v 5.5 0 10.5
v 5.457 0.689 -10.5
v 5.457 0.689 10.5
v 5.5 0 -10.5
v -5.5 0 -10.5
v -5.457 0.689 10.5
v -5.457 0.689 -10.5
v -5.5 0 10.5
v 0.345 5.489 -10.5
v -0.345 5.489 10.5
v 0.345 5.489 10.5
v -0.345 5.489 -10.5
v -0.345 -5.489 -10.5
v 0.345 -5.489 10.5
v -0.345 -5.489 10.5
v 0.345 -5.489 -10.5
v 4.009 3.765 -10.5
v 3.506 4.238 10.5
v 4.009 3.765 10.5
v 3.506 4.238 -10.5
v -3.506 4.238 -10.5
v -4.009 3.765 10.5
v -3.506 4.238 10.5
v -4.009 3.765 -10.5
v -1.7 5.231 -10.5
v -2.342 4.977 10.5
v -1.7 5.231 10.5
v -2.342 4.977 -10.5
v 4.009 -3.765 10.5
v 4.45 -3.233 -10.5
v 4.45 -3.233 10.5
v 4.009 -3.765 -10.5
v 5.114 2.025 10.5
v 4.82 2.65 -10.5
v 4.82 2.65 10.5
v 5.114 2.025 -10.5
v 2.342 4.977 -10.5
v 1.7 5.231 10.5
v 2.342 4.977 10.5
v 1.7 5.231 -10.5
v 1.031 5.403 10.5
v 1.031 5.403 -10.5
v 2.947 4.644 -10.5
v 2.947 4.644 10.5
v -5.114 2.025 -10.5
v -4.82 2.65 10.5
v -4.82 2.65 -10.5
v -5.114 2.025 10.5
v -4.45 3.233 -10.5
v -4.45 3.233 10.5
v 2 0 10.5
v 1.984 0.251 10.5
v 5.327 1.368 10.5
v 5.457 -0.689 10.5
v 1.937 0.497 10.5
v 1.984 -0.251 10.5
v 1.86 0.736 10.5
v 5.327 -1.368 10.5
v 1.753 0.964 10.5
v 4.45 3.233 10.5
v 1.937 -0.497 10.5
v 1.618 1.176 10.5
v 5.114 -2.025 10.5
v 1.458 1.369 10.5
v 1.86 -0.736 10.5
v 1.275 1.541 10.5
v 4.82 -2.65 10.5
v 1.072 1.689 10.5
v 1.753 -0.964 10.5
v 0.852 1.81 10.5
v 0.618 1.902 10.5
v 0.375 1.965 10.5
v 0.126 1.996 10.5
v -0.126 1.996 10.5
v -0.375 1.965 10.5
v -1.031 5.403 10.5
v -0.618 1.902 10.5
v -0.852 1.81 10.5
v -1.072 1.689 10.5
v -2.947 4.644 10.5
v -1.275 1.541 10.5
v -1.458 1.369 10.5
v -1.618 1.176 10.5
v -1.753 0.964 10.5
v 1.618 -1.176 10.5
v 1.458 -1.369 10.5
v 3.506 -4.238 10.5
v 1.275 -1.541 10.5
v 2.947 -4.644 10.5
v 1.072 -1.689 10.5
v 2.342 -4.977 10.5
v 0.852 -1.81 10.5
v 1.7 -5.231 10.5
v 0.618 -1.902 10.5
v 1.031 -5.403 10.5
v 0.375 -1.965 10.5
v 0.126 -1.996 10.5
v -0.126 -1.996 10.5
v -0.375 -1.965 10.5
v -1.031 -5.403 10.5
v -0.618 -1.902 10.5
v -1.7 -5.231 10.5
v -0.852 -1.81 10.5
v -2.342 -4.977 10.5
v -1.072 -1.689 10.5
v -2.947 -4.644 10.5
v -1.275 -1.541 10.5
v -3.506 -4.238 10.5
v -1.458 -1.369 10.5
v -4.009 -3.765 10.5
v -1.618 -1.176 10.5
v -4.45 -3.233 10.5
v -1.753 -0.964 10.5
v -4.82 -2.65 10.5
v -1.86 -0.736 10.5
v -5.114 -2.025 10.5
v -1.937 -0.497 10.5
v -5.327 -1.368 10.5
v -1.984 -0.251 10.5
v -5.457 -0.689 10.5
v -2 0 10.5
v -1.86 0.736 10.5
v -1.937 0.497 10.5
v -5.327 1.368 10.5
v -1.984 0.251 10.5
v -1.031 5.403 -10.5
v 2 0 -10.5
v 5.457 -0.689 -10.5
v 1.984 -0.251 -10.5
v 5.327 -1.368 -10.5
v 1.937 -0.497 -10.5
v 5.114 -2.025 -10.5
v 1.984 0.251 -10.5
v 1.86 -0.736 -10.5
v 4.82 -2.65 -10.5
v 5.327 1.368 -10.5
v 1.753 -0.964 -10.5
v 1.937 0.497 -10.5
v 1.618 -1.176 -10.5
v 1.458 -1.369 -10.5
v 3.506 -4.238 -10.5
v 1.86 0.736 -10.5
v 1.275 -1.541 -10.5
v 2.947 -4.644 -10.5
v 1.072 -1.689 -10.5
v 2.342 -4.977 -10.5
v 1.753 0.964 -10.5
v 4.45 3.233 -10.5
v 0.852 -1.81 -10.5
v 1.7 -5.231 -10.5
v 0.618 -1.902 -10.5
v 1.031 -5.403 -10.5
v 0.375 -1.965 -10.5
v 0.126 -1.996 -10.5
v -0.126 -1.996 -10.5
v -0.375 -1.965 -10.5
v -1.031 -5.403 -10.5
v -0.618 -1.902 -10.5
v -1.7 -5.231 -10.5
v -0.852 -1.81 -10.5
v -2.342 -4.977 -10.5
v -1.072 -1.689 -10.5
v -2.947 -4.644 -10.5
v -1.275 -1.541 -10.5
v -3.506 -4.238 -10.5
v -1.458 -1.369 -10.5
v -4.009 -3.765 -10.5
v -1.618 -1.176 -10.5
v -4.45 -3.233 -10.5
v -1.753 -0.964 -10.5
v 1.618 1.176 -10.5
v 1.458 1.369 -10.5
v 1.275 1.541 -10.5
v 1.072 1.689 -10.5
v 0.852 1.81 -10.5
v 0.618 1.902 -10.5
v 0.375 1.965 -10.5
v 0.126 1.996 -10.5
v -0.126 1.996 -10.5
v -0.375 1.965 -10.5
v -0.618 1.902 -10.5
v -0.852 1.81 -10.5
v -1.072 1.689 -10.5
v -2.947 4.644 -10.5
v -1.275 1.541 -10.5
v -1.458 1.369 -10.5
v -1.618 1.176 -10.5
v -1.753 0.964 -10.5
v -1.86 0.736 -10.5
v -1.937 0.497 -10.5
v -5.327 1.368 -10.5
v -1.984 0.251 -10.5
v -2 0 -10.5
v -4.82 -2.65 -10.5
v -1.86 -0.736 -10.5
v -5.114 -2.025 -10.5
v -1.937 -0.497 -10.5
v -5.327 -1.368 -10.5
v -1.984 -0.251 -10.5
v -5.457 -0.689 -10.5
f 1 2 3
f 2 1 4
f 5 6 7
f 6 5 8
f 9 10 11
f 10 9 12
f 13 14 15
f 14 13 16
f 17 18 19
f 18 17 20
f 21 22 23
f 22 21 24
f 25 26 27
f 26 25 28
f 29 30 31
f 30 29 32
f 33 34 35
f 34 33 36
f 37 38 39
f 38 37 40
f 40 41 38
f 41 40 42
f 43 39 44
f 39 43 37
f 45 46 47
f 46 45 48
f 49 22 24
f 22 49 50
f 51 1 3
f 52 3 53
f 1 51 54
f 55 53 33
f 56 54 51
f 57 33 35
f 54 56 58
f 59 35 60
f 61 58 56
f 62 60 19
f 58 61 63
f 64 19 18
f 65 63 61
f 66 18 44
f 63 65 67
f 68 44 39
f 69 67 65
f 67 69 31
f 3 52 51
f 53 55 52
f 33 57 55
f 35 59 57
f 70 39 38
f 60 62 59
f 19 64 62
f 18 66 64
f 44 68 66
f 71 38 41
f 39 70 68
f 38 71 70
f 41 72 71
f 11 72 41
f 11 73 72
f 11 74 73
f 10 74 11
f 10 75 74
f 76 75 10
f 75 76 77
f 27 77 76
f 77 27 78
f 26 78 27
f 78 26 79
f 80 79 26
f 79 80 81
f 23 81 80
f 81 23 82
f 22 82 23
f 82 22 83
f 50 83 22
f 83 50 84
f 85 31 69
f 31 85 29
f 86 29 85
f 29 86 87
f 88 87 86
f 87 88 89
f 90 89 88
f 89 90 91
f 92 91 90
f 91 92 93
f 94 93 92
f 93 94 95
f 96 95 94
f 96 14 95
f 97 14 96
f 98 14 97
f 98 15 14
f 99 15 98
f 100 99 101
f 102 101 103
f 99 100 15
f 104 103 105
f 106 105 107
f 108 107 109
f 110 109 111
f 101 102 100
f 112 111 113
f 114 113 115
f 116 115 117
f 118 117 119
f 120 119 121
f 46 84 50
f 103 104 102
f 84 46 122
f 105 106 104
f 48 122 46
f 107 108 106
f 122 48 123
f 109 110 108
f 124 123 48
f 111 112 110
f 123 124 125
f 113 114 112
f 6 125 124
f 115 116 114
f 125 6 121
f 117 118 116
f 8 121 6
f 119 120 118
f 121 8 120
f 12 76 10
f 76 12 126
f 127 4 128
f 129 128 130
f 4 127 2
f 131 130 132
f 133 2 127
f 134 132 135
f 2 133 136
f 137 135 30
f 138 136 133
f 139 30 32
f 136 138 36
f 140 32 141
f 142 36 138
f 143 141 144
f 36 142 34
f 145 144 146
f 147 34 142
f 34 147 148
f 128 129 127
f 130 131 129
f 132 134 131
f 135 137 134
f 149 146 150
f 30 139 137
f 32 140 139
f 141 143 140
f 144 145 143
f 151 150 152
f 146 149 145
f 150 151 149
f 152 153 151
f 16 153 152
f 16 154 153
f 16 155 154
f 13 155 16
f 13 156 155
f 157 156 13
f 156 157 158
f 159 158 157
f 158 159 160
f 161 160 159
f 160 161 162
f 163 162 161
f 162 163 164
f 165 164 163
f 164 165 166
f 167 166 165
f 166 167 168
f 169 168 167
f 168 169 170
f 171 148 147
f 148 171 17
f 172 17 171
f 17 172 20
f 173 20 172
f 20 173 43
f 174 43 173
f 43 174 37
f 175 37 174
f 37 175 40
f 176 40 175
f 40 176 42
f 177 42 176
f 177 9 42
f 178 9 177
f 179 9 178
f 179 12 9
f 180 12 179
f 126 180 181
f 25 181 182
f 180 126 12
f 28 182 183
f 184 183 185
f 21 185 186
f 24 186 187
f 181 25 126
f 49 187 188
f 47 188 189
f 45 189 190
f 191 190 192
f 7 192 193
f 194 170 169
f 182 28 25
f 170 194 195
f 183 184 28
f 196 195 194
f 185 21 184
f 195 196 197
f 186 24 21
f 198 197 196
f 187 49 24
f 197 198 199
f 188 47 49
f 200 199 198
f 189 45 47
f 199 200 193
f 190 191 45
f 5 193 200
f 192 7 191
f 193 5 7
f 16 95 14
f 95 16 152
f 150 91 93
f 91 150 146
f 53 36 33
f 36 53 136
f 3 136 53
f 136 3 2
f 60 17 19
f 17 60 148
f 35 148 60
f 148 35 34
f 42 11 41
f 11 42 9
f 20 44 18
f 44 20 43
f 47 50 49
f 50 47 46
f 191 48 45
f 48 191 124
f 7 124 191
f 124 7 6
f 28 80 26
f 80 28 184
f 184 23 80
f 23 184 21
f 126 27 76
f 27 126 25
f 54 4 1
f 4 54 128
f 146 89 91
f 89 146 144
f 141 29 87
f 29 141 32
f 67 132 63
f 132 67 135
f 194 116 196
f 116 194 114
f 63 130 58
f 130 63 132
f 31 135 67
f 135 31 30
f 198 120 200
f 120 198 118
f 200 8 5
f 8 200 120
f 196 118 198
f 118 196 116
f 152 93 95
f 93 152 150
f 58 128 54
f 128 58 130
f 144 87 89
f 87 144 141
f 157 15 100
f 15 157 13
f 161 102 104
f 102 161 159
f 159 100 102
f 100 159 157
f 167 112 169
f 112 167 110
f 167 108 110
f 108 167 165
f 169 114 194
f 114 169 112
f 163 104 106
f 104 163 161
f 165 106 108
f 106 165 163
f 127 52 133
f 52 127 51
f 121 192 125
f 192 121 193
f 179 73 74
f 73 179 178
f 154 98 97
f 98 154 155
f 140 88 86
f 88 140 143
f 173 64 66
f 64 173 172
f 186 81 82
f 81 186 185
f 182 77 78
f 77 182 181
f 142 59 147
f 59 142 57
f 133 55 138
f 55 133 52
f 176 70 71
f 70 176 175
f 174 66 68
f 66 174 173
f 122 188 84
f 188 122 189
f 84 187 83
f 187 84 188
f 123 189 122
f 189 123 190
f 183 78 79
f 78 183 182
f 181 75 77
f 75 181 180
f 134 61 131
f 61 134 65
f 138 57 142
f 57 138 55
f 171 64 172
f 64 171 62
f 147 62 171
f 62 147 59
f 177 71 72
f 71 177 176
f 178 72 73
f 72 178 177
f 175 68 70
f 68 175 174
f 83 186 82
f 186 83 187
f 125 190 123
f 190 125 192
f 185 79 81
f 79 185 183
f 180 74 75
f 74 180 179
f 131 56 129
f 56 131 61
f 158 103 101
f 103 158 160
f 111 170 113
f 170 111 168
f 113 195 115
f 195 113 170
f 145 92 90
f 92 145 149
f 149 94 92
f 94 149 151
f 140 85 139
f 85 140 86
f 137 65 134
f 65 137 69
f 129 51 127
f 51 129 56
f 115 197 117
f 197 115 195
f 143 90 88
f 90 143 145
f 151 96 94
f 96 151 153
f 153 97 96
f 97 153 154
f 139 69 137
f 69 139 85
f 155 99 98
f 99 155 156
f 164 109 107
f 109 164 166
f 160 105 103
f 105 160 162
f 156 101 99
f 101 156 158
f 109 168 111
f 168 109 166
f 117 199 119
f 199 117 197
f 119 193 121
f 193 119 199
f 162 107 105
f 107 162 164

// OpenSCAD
$fn = 50;


difference() {
	union() {
		translate(v = [0, 0, -10.5000000000]) {
			cylinder(h = 21, r = 5.5000000000);
		}
	}
	union() {
		translate(v = [0, 0, -100.0000000000]) {
			cylinder(h = 200, r = 2);
		}
	}
}
